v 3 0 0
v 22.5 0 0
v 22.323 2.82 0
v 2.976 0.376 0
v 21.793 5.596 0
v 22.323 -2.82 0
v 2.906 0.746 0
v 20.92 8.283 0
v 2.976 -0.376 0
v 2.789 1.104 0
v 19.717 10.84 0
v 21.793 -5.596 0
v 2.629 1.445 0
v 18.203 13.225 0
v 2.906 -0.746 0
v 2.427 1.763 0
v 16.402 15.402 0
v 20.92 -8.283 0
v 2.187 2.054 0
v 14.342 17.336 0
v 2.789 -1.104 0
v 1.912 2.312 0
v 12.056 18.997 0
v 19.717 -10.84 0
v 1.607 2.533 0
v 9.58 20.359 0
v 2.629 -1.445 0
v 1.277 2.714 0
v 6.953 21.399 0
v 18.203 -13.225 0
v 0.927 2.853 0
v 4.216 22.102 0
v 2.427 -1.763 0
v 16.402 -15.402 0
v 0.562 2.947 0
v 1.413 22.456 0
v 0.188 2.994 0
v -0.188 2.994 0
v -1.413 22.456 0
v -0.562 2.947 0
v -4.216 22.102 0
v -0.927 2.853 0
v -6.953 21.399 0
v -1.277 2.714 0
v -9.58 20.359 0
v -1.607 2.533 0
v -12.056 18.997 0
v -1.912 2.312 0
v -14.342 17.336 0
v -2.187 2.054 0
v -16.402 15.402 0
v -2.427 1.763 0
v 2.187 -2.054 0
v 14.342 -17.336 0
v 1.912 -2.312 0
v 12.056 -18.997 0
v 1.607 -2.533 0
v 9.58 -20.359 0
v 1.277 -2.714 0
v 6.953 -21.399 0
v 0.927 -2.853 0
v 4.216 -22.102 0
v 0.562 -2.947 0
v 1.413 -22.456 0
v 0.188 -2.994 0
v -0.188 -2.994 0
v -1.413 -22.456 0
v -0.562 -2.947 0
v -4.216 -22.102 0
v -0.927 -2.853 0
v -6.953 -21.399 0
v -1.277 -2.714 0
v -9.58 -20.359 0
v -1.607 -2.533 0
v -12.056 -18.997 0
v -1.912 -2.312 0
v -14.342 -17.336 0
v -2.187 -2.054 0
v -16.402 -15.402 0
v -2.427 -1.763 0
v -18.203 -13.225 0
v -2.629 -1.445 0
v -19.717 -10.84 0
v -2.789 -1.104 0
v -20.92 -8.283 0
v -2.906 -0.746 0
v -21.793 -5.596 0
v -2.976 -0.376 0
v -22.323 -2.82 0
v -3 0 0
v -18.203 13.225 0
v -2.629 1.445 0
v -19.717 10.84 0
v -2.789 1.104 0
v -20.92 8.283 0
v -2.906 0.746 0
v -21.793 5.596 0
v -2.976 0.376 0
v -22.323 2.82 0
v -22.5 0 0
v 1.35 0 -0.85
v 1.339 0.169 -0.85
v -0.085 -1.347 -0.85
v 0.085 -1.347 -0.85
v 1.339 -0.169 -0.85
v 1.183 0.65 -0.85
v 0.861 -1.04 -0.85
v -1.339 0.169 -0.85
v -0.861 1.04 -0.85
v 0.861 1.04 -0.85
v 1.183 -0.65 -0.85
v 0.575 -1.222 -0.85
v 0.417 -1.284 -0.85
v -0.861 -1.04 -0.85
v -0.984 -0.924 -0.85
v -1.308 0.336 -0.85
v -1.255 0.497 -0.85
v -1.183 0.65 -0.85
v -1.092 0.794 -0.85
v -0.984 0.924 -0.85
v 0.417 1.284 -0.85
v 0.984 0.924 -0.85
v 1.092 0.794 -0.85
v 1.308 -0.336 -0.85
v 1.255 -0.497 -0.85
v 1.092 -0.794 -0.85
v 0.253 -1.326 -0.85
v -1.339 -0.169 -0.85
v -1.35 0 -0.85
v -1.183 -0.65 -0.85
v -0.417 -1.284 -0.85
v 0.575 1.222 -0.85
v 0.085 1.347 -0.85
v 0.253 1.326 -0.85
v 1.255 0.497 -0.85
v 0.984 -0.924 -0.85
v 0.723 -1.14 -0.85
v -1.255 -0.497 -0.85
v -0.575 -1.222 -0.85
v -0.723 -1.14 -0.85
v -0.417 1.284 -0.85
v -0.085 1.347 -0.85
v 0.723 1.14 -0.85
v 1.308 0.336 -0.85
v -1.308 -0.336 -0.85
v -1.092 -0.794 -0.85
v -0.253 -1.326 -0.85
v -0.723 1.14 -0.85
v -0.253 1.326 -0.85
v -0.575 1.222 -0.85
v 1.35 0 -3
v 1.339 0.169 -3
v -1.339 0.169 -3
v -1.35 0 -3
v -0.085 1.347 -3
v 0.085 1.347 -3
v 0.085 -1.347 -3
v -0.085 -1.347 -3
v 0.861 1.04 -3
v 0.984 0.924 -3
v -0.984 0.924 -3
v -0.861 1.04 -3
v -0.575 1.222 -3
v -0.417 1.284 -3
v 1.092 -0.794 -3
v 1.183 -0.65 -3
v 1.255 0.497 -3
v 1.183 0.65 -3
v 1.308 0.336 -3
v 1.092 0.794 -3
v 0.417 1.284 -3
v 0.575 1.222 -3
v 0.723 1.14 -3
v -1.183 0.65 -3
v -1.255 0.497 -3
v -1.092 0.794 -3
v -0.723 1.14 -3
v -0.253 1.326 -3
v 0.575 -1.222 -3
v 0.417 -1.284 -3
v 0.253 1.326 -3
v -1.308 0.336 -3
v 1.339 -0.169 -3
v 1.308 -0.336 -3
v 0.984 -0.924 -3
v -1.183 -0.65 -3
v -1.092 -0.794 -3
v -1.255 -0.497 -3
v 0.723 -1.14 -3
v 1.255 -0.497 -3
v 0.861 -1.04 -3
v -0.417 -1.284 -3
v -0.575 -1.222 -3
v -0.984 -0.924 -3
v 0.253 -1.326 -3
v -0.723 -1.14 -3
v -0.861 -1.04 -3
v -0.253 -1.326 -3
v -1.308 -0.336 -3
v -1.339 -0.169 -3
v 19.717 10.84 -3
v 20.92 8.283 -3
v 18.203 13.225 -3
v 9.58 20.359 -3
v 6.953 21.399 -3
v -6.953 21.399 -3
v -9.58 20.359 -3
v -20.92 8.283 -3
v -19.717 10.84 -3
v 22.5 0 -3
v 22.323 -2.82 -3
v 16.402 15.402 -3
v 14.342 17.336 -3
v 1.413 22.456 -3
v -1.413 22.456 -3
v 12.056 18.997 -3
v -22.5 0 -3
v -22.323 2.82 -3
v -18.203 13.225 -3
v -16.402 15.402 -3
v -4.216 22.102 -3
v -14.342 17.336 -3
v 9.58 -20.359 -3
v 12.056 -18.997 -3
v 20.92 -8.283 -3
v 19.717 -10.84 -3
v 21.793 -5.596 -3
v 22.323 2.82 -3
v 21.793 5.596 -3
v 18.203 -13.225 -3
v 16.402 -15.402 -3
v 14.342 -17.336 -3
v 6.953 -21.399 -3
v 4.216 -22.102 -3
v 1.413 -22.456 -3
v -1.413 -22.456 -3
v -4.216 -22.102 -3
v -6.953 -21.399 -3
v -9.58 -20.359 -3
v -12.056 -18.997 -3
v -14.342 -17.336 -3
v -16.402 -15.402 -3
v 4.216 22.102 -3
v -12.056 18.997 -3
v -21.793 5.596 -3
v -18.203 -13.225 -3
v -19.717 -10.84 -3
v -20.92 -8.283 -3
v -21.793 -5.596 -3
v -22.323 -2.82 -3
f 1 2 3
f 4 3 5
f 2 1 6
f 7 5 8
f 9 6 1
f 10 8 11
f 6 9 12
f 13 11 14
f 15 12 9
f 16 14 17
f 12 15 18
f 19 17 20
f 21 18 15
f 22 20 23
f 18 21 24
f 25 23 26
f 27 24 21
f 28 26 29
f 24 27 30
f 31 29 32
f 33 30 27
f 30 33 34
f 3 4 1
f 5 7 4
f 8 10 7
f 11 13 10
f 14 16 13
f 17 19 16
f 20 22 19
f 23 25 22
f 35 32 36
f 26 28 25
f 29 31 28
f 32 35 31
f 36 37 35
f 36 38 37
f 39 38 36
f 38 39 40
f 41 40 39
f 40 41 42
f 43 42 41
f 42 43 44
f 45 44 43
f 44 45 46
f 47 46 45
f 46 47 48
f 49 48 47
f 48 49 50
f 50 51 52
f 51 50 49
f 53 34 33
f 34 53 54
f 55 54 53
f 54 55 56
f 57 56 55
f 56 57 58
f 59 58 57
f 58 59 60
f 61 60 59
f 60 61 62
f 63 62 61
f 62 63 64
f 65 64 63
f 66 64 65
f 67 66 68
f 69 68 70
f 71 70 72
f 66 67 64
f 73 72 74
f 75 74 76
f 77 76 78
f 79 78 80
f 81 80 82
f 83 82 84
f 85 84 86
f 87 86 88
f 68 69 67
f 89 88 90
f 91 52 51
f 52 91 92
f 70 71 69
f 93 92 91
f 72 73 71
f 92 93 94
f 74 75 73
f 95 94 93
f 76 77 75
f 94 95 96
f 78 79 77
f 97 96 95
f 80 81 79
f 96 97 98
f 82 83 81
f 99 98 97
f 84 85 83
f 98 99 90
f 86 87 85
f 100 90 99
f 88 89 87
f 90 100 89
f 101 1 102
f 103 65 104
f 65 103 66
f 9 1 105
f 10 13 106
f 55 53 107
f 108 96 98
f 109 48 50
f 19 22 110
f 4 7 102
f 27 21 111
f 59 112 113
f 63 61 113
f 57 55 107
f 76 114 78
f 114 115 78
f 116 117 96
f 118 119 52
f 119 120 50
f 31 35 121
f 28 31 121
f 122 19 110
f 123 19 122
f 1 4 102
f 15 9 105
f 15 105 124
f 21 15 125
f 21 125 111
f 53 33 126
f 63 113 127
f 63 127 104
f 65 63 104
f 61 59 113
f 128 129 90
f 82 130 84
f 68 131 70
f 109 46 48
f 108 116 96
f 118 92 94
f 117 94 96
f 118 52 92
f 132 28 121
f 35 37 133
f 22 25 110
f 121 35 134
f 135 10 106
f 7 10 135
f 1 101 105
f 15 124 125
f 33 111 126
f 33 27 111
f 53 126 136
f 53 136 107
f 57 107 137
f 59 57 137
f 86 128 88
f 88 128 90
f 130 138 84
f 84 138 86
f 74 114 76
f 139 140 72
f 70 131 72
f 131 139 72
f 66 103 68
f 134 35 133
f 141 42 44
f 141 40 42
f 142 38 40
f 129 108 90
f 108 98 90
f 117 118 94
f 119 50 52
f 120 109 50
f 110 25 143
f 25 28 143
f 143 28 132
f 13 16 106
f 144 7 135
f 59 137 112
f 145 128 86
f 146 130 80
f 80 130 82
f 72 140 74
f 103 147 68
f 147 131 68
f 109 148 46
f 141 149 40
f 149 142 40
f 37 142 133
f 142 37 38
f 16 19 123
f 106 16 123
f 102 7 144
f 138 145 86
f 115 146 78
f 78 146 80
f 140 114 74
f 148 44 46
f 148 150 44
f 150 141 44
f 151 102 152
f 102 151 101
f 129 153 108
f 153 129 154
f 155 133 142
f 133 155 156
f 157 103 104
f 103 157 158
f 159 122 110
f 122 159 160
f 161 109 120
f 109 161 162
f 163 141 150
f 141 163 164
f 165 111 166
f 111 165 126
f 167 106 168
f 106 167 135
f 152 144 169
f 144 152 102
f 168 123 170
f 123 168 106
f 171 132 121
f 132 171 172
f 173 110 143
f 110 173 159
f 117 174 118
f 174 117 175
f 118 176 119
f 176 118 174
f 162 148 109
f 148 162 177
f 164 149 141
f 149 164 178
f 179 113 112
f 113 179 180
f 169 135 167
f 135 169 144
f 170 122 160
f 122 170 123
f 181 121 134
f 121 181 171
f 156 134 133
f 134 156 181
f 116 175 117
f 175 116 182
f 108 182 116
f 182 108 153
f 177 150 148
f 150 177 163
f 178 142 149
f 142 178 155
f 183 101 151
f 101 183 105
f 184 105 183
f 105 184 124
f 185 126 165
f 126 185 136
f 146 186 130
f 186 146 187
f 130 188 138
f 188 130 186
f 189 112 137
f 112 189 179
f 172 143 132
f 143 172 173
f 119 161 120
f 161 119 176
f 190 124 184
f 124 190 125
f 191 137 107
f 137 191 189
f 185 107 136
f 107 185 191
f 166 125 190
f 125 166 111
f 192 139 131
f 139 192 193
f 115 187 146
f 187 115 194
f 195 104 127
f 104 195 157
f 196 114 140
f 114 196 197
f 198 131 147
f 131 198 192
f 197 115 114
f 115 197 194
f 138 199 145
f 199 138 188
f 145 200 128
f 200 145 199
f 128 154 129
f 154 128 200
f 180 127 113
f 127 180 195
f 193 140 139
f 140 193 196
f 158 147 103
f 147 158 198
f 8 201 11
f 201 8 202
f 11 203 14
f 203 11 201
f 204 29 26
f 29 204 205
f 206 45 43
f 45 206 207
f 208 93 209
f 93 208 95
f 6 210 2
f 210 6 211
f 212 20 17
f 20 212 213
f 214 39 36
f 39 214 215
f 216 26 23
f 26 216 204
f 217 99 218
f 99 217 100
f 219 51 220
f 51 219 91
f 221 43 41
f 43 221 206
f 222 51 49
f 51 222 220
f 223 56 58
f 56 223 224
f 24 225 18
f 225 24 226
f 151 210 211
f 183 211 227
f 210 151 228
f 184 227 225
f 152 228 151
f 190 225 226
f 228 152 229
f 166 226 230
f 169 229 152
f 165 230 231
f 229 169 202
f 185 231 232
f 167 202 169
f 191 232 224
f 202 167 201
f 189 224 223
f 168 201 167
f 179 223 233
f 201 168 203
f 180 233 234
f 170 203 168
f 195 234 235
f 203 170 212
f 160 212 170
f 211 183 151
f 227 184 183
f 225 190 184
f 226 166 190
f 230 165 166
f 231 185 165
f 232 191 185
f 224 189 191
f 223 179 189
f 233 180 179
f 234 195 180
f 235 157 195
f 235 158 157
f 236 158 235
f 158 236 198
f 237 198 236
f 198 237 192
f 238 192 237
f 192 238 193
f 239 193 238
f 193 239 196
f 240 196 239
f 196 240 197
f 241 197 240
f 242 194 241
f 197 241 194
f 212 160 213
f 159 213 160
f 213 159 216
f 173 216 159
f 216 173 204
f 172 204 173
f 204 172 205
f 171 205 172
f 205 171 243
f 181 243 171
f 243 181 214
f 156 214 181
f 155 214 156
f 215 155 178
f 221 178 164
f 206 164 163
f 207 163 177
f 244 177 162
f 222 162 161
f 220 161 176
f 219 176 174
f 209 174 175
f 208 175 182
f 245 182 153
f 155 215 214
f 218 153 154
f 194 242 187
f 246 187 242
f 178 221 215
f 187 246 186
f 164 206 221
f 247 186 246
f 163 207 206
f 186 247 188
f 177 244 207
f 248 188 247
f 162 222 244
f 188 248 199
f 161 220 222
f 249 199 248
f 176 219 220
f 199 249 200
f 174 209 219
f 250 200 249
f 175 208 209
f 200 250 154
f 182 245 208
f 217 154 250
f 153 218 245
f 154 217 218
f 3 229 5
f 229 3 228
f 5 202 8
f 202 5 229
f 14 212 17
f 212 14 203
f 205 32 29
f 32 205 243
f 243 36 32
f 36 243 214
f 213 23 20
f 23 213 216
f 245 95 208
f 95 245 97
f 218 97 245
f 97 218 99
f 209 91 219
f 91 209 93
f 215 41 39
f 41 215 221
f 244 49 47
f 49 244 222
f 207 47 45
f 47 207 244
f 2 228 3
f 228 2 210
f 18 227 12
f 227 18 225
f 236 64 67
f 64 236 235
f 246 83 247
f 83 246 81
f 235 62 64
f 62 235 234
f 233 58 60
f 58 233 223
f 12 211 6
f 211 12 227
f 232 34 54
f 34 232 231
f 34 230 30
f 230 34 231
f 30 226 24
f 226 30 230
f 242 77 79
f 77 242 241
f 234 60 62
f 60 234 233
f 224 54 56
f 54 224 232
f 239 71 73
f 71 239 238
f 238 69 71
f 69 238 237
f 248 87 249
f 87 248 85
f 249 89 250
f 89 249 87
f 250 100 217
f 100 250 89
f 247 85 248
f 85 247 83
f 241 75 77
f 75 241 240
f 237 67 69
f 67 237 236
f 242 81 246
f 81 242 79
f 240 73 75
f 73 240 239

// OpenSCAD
$fn = 50;


difference() {
	union() {
		translate(v = [0, 0, -3.0000000000]) {
			cylinder(h = 3, r = 22.5000000000);
		}
	}
	union() {
		translate(v = [0, 0, 0]) {
			rotate(a = [0, 0, 0]) {
				difference() {
					union() {
						translate(v = [0, 0, -6.0000000000]) {
							cylinder(h = 6, r = 1.0000000000);
						}
						translate(v = [0, 0, -0.8500000000]) {
							cylinder(h = 0.8500000000, r1 = 1.3500000000, r2 = 3.0000000000);
						}
						translate(v = [0, 0, -6.0000000000]) {
							cylinder(h = 6, r = 1.3500000000);
						}
						translate(v = [0, 0, -6.0000000000]) {
							cylinder(h = 6, r = 1.0000000000);
						}
					}
					union();
				}
			}
		}
	}
}
